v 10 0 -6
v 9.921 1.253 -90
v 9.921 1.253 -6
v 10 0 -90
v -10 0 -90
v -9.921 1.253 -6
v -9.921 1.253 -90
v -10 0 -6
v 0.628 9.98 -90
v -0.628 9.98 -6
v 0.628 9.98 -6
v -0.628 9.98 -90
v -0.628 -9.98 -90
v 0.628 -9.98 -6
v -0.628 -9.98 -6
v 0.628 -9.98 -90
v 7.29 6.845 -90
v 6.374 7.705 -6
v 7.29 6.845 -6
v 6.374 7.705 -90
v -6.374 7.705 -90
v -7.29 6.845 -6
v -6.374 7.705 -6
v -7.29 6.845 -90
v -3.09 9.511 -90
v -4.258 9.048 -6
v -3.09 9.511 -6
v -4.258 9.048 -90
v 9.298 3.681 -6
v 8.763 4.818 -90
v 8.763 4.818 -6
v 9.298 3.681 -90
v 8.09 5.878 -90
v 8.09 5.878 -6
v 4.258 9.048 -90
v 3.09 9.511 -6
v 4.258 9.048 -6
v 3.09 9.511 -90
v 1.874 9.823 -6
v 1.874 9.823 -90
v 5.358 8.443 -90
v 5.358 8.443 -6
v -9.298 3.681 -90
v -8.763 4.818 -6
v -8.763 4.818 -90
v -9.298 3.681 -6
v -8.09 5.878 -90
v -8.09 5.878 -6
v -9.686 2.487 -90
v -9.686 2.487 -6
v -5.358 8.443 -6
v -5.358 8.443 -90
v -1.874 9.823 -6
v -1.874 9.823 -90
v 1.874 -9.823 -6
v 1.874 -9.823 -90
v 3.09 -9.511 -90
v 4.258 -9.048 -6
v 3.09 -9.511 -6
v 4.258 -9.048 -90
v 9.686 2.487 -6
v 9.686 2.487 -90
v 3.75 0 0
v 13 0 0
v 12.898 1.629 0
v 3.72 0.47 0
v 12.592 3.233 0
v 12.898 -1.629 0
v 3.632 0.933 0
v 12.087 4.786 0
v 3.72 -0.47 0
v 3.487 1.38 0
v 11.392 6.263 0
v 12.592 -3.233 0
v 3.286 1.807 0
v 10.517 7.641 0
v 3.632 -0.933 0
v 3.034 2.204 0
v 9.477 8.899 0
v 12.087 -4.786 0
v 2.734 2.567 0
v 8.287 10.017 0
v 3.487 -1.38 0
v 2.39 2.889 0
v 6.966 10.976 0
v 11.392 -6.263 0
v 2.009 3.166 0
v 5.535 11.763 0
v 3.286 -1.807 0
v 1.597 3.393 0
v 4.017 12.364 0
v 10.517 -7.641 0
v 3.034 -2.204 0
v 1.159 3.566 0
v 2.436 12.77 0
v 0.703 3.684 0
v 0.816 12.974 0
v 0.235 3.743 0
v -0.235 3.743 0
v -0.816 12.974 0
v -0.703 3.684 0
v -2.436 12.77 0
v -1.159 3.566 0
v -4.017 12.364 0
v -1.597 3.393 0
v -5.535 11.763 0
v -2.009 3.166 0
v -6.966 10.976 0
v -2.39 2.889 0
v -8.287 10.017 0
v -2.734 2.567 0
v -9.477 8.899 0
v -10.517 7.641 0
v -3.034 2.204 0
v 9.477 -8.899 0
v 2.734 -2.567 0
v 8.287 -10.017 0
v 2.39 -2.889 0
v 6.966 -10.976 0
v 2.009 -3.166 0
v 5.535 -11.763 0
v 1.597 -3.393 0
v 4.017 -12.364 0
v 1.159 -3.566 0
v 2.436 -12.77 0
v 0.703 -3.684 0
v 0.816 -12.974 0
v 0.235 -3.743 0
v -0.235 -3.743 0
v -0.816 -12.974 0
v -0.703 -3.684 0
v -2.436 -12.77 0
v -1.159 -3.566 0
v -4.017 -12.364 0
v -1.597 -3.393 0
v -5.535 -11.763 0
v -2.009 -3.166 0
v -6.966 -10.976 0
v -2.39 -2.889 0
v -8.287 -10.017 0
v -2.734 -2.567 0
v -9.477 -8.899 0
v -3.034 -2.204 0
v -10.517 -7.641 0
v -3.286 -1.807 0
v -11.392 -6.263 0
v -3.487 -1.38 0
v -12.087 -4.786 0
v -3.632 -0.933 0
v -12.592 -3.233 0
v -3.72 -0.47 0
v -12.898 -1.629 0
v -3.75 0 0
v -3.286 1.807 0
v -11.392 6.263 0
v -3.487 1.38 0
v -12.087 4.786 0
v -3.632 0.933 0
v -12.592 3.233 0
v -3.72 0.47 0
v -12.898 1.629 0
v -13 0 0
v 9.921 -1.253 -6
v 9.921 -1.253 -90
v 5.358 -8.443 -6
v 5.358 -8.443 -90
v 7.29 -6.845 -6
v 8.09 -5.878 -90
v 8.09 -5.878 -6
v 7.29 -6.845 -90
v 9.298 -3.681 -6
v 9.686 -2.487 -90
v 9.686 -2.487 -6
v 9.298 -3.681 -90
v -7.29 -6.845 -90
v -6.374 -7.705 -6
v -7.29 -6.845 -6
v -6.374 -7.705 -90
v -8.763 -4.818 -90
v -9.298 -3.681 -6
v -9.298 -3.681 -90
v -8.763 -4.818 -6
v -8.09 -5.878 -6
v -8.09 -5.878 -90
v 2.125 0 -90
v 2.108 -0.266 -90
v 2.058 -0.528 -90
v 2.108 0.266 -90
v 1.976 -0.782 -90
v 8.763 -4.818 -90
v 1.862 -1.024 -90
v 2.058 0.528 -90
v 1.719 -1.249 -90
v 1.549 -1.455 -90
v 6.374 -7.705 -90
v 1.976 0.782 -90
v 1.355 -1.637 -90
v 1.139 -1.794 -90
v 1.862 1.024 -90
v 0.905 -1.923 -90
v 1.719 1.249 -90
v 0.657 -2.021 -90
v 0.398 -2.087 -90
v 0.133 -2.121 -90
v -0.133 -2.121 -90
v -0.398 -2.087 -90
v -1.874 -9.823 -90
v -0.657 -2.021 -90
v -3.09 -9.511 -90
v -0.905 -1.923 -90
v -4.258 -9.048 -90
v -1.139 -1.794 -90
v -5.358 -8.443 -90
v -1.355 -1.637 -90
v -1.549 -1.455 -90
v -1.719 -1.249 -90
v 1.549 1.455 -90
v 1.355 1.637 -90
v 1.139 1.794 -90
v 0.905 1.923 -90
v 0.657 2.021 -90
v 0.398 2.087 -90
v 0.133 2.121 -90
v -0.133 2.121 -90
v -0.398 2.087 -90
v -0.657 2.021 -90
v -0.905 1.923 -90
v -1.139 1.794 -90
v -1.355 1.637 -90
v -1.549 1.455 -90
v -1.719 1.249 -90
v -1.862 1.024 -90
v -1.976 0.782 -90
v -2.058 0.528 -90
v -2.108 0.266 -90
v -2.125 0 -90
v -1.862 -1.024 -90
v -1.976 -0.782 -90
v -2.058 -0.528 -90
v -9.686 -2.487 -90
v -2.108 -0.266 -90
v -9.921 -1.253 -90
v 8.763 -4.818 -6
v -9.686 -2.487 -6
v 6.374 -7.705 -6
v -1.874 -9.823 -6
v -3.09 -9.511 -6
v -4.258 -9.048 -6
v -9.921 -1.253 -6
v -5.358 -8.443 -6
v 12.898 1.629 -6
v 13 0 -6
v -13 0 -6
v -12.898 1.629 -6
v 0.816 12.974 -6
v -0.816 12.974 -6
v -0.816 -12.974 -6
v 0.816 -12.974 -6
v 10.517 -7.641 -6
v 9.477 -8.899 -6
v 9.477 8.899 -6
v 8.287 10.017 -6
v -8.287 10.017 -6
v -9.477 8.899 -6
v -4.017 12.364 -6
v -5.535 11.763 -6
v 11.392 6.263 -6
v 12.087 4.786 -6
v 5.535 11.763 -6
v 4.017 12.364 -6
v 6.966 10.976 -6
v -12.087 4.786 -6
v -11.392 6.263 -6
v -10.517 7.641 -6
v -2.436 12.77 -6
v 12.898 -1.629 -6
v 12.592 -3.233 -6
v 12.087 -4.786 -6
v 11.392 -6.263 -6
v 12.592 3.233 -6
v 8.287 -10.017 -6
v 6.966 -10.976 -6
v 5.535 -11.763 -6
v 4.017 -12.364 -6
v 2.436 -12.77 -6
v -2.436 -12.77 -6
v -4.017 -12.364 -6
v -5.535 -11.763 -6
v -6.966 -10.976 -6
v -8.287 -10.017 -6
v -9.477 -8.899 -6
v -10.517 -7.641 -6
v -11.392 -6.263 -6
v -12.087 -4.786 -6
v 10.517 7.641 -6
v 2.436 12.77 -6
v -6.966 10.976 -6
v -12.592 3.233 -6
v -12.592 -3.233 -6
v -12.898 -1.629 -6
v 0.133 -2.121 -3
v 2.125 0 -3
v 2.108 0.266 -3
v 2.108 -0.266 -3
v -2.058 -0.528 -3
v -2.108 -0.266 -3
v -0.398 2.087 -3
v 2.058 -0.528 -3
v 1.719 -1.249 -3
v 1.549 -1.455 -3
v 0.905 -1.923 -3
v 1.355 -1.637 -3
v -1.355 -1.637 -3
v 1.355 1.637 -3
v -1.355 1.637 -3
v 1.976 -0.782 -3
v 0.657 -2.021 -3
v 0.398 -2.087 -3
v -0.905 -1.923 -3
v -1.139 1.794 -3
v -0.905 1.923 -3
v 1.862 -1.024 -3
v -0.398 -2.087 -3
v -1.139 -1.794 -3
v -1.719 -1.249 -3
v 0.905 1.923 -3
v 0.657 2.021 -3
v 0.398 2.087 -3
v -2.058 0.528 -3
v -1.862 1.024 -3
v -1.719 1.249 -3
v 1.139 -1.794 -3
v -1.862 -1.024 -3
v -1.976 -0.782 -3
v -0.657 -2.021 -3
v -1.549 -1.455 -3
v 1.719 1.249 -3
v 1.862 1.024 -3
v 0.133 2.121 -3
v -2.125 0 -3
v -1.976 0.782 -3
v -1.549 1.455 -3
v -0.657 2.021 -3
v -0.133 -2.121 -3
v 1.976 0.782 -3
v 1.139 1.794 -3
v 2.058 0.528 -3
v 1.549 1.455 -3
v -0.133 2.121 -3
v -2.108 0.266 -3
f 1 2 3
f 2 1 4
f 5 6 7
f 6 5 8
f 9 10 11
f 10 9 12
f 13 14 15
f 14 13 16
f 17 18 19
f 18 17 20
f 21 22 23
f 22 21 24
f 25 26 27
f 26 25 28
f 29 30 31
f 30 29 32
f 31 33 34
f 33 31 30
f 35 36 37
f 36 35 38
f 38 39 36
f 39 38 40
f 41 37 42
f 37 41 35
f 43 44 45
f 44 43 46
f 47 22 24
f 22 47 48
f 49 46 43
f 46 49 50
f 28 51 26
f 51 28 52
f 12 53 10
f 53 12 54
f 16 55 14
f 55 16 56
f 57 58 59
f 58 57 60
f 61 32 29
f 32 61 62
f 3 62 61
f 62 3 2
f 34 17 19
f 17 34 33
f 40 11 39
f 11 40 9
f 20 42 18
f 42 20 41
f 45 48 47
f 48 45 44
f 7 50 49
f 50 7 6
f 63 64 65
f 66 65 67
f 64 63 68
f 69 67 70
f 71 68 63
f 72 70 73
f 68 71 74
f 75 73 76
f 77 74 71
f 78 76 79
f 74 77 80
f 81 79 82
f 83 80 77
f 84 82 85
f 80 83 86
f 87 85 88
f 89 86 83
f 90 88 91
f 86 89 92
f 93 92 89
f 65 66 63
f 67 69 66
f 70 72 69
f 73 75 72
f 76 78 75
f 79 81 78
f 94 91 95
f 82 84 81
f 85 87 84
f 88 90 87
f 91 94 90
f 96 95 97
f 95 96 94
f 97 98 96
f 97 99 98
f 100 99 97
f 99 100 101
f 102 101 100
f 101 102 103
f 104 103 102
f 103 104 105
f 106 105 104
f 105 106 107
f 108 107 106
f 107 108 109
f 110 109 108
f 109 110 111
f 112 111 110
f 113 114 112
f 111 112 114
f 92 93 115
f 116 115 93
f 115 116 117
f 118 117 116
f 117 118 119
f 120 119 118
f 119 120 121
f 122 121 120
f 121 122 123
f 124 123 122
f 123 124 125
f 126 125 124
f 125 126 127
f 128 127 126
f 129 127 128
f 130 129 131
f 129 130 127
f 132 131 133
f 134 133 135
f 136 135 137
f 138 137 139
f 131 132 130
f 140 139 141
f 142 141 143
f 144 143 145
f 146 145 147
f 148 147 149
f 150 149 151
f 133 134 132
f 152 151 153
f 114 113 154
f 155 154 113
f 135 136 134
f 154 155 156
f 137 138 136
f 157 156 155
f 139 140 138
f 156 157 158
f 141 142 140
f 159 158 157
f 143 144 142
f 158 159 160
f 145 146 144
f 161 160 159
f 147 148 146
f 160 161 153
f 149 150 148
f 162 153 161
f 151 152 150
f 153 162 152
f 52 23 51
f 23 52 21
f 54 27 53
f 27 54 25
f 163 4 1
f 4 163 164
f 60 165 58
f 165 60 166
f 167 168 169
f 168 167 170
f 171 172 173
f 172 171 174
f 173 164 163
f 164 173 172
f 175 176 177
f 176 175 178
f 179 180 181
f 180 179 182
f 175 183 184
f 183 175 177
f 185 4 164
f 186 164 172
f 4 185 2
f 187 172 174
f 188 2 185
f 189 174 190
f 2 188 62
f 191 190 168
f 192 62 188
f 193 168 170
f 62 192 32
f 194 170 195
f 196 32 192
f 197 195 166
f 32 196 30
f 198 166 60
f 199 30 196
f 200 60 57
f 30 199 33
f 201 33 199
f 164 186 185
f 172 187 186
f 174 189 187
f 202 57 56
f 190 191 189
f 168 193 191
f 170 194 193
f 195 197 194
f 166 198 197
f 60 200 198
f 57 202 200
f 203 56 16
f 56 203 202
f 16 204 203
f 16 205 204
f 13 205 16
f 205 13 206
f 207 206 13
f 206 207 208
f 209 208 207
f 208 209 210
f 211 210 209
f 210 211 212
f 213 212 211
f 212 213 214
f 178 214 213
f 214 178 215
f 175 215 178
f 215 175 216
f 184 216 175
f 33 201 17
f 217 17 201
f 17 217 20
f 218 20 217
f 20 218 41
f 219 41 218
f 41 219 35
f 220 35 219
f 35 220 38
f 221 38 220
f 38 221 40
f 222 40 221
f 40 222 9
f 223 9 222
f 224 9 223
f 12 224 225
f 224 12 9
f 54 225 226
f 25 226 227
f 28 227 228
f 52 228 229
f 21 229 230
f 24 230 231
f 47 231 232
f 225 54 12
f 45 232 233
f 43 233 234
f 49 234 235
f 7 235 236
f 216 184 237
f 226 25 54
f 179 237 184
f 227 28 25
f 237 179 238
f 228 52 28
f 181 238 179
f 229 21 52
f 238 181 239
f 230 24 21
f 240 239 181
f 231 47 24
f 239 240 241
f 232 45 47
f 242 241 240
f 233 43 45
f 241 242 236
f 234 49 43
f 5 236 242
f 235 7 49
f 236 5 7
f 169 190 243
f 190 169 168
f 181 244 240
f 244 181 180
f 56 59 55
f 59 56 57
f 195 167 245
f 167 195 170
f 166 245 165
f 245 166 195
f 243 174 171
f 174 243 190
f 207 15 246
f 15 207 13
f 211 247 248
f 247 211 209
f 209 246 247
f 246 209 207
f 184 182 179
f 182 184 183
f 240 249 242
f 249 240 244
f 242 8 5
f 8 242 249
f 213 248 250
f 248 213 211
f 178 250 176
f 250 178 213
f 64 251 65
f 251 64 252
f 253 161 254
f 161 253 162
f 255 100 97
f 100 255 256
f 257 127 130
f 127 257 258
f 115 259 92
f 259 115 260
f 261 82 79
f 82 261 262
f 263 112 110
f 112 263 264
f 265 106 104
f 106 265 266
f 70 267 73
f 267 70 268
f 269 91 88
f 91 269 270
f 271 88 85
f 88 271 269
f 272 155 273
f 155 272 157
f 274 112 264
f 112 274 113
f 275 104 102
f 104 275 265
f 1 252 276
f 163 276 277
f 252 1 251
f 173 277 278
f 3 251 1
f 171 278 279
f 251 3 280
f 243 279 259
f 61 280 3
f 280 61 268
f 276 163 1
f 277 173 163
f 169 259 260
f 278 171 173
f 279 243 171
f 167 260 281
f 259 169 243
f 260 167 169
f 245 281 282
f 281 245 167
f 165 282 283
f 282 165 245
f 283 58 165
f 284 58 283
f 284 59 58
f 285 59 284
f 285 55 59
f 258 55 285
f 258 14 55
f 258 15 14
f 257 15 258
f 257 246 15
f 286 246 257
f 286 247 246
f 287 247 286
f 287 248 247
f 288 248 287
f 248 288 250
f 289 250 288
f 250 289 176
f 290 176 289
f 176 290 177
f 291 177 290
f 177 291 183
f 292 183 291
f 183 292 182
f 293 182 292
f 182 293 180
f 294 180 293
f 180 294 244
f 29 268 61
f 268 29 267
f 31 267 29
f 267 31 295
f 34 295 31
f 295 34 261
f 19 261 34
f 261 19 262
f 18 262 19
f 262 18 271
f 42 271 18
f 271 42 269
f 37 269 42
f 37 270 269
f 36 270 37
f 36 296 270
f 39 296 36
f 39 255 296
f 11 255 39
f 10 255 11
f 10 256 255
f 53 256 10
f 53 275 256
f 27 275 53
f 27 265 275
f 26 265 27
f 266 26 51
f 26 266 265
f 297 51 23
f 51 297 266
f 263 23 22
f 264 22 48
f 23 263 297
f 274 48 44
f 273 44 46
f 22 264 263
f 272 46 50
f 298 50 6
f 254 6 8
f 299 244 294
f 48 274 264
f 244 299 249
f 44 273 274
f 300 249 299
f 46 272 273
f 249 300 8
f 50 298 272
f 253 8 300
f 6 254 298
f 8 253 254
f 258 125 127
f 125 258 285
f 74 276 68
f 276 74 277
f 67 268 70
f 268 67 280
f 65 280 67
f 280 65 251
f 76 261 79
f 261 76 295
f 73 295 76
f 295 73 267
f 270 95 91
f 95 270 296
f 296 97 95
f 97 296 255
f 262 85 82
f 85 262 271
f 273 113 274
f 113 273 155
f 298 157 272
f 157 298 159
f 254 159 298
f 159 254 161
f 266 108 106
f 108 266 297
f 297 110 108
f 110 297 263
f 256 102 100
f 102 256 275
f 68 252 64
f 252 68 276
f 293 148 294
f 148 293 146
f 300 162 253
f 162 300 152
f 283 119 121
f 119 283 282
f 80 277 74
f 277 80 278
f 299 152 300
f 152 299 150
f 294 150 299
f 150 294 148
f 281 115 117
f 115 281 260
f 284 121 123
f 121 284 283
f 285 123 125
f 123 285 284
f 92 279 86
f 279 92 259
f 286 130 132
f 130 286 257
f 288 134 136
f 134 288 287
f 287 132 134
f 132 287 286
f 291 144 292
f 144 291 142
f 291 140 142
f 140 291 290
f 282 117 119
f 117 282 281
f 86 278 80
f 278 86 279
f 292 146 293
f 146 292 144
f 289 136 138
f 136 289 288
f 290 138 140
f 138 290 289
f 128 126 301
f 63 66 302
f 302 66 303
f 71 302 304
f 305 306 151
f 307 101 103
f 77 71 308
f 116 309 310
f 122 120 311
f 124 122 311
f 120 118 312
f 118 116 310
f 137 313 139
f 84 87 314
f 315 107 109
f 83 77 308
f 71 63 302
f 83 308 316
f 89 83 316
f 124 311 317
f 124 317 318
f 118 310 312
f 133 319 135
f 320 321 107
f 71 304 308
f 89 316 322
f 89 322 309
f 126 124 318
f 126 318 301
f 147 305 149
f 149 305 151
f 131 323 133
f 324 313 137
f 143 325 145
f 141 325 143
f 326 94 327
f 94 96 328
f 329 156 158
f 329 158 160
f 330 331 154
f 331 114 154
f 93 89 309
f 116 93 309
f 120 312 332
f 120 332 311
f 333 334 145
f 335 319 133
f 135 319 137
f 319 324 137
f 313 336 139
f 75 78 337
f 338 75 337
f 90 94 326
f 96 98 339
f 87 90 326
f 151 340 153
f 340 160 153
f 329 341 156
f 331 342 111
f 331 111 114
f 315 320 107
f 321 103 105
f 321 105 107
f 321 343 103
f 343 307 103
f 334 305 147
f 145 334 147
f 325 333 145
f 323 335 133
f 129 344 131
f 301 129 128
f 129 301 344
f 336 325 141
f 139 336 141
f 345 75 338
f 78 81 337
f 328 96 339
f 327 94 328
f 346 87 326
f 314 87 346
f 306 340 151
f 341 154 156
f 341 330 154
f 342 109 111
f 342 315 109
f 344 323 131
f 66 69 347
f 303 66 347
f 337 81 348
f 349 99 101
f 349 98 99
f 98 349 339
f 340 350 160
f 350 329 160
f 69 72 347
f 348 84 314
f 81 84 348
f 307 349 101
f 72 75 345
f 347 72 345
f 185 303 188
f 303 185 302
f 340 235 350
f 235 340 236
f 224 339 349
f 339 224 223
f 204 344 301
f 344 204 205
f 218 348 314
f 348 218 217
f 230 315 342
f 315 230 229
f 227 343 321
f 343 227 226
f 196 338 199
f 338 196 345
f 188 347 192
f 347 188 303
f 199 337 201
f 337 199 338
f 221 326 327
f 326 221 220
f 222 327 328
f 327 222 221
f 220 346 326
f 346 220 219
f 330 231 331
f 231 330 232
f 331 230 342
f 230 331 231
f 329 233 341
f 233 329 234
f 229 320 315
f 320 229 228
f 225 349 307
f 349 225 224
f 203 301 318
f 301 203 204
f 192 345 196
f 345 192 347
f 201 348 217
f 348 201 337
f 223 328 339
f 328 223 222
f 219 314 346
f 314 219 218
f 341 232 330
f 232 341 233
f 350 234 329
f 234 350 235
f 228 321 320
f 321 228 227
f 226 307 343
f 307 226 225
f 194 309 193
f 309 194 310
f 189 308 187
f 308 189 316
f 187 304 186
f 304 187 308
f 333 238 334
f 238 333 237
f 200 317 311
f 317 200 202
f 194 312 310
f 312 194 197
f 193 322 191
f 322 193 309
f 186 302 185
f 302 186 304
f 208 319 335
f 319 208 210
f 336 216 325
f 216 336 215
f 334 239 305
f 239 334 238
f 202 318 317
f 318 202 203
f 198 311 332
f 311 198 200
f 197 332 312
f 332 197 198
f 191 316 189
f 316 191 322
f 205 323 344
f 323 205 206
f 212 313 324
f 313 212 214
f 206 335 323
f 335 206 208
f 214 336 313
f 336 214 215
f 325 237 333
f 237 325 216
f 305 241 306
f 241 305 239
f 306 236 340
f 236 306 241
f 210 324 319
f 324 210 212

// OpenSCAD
$fn = 50;


difference() {
	union() {
		translate(v = [0, 0, -90.0000000000]) {
			cylinder(h = 90, r = 10.0000000000);
		}
		translate(v = [0, 0, -6.0000000000]) {
			cylinder(h = 6, r = 13.0000000000);
		}
	}
	union() {
		translate(v = [0, 0, 0]) {
			rotate(a = [0, 0, 0]) {
				difference() {
					union() {
						#translate(v = [0, 0, -90.0000000000]) {
							cylinder(h = 90, r = 2.0000000000);
						}
						#translate(v = [0, 0, -3]) {
							cylinder(h = 3, r = 10.0000000000, r1 = 2.1250000000, r2 = 3.7500000000);
						}
						#translate(v = [0, 0, -90.0000000000]) {
							cylinder(h = 90, r = 2.1250000000);
						}
						#translate(v = [0, 0, -90.0000000000]) {
							cylinder(h = 90, r = 2.0000000000);
						}
					}
					union();
				}
			}
		}
	}
}
